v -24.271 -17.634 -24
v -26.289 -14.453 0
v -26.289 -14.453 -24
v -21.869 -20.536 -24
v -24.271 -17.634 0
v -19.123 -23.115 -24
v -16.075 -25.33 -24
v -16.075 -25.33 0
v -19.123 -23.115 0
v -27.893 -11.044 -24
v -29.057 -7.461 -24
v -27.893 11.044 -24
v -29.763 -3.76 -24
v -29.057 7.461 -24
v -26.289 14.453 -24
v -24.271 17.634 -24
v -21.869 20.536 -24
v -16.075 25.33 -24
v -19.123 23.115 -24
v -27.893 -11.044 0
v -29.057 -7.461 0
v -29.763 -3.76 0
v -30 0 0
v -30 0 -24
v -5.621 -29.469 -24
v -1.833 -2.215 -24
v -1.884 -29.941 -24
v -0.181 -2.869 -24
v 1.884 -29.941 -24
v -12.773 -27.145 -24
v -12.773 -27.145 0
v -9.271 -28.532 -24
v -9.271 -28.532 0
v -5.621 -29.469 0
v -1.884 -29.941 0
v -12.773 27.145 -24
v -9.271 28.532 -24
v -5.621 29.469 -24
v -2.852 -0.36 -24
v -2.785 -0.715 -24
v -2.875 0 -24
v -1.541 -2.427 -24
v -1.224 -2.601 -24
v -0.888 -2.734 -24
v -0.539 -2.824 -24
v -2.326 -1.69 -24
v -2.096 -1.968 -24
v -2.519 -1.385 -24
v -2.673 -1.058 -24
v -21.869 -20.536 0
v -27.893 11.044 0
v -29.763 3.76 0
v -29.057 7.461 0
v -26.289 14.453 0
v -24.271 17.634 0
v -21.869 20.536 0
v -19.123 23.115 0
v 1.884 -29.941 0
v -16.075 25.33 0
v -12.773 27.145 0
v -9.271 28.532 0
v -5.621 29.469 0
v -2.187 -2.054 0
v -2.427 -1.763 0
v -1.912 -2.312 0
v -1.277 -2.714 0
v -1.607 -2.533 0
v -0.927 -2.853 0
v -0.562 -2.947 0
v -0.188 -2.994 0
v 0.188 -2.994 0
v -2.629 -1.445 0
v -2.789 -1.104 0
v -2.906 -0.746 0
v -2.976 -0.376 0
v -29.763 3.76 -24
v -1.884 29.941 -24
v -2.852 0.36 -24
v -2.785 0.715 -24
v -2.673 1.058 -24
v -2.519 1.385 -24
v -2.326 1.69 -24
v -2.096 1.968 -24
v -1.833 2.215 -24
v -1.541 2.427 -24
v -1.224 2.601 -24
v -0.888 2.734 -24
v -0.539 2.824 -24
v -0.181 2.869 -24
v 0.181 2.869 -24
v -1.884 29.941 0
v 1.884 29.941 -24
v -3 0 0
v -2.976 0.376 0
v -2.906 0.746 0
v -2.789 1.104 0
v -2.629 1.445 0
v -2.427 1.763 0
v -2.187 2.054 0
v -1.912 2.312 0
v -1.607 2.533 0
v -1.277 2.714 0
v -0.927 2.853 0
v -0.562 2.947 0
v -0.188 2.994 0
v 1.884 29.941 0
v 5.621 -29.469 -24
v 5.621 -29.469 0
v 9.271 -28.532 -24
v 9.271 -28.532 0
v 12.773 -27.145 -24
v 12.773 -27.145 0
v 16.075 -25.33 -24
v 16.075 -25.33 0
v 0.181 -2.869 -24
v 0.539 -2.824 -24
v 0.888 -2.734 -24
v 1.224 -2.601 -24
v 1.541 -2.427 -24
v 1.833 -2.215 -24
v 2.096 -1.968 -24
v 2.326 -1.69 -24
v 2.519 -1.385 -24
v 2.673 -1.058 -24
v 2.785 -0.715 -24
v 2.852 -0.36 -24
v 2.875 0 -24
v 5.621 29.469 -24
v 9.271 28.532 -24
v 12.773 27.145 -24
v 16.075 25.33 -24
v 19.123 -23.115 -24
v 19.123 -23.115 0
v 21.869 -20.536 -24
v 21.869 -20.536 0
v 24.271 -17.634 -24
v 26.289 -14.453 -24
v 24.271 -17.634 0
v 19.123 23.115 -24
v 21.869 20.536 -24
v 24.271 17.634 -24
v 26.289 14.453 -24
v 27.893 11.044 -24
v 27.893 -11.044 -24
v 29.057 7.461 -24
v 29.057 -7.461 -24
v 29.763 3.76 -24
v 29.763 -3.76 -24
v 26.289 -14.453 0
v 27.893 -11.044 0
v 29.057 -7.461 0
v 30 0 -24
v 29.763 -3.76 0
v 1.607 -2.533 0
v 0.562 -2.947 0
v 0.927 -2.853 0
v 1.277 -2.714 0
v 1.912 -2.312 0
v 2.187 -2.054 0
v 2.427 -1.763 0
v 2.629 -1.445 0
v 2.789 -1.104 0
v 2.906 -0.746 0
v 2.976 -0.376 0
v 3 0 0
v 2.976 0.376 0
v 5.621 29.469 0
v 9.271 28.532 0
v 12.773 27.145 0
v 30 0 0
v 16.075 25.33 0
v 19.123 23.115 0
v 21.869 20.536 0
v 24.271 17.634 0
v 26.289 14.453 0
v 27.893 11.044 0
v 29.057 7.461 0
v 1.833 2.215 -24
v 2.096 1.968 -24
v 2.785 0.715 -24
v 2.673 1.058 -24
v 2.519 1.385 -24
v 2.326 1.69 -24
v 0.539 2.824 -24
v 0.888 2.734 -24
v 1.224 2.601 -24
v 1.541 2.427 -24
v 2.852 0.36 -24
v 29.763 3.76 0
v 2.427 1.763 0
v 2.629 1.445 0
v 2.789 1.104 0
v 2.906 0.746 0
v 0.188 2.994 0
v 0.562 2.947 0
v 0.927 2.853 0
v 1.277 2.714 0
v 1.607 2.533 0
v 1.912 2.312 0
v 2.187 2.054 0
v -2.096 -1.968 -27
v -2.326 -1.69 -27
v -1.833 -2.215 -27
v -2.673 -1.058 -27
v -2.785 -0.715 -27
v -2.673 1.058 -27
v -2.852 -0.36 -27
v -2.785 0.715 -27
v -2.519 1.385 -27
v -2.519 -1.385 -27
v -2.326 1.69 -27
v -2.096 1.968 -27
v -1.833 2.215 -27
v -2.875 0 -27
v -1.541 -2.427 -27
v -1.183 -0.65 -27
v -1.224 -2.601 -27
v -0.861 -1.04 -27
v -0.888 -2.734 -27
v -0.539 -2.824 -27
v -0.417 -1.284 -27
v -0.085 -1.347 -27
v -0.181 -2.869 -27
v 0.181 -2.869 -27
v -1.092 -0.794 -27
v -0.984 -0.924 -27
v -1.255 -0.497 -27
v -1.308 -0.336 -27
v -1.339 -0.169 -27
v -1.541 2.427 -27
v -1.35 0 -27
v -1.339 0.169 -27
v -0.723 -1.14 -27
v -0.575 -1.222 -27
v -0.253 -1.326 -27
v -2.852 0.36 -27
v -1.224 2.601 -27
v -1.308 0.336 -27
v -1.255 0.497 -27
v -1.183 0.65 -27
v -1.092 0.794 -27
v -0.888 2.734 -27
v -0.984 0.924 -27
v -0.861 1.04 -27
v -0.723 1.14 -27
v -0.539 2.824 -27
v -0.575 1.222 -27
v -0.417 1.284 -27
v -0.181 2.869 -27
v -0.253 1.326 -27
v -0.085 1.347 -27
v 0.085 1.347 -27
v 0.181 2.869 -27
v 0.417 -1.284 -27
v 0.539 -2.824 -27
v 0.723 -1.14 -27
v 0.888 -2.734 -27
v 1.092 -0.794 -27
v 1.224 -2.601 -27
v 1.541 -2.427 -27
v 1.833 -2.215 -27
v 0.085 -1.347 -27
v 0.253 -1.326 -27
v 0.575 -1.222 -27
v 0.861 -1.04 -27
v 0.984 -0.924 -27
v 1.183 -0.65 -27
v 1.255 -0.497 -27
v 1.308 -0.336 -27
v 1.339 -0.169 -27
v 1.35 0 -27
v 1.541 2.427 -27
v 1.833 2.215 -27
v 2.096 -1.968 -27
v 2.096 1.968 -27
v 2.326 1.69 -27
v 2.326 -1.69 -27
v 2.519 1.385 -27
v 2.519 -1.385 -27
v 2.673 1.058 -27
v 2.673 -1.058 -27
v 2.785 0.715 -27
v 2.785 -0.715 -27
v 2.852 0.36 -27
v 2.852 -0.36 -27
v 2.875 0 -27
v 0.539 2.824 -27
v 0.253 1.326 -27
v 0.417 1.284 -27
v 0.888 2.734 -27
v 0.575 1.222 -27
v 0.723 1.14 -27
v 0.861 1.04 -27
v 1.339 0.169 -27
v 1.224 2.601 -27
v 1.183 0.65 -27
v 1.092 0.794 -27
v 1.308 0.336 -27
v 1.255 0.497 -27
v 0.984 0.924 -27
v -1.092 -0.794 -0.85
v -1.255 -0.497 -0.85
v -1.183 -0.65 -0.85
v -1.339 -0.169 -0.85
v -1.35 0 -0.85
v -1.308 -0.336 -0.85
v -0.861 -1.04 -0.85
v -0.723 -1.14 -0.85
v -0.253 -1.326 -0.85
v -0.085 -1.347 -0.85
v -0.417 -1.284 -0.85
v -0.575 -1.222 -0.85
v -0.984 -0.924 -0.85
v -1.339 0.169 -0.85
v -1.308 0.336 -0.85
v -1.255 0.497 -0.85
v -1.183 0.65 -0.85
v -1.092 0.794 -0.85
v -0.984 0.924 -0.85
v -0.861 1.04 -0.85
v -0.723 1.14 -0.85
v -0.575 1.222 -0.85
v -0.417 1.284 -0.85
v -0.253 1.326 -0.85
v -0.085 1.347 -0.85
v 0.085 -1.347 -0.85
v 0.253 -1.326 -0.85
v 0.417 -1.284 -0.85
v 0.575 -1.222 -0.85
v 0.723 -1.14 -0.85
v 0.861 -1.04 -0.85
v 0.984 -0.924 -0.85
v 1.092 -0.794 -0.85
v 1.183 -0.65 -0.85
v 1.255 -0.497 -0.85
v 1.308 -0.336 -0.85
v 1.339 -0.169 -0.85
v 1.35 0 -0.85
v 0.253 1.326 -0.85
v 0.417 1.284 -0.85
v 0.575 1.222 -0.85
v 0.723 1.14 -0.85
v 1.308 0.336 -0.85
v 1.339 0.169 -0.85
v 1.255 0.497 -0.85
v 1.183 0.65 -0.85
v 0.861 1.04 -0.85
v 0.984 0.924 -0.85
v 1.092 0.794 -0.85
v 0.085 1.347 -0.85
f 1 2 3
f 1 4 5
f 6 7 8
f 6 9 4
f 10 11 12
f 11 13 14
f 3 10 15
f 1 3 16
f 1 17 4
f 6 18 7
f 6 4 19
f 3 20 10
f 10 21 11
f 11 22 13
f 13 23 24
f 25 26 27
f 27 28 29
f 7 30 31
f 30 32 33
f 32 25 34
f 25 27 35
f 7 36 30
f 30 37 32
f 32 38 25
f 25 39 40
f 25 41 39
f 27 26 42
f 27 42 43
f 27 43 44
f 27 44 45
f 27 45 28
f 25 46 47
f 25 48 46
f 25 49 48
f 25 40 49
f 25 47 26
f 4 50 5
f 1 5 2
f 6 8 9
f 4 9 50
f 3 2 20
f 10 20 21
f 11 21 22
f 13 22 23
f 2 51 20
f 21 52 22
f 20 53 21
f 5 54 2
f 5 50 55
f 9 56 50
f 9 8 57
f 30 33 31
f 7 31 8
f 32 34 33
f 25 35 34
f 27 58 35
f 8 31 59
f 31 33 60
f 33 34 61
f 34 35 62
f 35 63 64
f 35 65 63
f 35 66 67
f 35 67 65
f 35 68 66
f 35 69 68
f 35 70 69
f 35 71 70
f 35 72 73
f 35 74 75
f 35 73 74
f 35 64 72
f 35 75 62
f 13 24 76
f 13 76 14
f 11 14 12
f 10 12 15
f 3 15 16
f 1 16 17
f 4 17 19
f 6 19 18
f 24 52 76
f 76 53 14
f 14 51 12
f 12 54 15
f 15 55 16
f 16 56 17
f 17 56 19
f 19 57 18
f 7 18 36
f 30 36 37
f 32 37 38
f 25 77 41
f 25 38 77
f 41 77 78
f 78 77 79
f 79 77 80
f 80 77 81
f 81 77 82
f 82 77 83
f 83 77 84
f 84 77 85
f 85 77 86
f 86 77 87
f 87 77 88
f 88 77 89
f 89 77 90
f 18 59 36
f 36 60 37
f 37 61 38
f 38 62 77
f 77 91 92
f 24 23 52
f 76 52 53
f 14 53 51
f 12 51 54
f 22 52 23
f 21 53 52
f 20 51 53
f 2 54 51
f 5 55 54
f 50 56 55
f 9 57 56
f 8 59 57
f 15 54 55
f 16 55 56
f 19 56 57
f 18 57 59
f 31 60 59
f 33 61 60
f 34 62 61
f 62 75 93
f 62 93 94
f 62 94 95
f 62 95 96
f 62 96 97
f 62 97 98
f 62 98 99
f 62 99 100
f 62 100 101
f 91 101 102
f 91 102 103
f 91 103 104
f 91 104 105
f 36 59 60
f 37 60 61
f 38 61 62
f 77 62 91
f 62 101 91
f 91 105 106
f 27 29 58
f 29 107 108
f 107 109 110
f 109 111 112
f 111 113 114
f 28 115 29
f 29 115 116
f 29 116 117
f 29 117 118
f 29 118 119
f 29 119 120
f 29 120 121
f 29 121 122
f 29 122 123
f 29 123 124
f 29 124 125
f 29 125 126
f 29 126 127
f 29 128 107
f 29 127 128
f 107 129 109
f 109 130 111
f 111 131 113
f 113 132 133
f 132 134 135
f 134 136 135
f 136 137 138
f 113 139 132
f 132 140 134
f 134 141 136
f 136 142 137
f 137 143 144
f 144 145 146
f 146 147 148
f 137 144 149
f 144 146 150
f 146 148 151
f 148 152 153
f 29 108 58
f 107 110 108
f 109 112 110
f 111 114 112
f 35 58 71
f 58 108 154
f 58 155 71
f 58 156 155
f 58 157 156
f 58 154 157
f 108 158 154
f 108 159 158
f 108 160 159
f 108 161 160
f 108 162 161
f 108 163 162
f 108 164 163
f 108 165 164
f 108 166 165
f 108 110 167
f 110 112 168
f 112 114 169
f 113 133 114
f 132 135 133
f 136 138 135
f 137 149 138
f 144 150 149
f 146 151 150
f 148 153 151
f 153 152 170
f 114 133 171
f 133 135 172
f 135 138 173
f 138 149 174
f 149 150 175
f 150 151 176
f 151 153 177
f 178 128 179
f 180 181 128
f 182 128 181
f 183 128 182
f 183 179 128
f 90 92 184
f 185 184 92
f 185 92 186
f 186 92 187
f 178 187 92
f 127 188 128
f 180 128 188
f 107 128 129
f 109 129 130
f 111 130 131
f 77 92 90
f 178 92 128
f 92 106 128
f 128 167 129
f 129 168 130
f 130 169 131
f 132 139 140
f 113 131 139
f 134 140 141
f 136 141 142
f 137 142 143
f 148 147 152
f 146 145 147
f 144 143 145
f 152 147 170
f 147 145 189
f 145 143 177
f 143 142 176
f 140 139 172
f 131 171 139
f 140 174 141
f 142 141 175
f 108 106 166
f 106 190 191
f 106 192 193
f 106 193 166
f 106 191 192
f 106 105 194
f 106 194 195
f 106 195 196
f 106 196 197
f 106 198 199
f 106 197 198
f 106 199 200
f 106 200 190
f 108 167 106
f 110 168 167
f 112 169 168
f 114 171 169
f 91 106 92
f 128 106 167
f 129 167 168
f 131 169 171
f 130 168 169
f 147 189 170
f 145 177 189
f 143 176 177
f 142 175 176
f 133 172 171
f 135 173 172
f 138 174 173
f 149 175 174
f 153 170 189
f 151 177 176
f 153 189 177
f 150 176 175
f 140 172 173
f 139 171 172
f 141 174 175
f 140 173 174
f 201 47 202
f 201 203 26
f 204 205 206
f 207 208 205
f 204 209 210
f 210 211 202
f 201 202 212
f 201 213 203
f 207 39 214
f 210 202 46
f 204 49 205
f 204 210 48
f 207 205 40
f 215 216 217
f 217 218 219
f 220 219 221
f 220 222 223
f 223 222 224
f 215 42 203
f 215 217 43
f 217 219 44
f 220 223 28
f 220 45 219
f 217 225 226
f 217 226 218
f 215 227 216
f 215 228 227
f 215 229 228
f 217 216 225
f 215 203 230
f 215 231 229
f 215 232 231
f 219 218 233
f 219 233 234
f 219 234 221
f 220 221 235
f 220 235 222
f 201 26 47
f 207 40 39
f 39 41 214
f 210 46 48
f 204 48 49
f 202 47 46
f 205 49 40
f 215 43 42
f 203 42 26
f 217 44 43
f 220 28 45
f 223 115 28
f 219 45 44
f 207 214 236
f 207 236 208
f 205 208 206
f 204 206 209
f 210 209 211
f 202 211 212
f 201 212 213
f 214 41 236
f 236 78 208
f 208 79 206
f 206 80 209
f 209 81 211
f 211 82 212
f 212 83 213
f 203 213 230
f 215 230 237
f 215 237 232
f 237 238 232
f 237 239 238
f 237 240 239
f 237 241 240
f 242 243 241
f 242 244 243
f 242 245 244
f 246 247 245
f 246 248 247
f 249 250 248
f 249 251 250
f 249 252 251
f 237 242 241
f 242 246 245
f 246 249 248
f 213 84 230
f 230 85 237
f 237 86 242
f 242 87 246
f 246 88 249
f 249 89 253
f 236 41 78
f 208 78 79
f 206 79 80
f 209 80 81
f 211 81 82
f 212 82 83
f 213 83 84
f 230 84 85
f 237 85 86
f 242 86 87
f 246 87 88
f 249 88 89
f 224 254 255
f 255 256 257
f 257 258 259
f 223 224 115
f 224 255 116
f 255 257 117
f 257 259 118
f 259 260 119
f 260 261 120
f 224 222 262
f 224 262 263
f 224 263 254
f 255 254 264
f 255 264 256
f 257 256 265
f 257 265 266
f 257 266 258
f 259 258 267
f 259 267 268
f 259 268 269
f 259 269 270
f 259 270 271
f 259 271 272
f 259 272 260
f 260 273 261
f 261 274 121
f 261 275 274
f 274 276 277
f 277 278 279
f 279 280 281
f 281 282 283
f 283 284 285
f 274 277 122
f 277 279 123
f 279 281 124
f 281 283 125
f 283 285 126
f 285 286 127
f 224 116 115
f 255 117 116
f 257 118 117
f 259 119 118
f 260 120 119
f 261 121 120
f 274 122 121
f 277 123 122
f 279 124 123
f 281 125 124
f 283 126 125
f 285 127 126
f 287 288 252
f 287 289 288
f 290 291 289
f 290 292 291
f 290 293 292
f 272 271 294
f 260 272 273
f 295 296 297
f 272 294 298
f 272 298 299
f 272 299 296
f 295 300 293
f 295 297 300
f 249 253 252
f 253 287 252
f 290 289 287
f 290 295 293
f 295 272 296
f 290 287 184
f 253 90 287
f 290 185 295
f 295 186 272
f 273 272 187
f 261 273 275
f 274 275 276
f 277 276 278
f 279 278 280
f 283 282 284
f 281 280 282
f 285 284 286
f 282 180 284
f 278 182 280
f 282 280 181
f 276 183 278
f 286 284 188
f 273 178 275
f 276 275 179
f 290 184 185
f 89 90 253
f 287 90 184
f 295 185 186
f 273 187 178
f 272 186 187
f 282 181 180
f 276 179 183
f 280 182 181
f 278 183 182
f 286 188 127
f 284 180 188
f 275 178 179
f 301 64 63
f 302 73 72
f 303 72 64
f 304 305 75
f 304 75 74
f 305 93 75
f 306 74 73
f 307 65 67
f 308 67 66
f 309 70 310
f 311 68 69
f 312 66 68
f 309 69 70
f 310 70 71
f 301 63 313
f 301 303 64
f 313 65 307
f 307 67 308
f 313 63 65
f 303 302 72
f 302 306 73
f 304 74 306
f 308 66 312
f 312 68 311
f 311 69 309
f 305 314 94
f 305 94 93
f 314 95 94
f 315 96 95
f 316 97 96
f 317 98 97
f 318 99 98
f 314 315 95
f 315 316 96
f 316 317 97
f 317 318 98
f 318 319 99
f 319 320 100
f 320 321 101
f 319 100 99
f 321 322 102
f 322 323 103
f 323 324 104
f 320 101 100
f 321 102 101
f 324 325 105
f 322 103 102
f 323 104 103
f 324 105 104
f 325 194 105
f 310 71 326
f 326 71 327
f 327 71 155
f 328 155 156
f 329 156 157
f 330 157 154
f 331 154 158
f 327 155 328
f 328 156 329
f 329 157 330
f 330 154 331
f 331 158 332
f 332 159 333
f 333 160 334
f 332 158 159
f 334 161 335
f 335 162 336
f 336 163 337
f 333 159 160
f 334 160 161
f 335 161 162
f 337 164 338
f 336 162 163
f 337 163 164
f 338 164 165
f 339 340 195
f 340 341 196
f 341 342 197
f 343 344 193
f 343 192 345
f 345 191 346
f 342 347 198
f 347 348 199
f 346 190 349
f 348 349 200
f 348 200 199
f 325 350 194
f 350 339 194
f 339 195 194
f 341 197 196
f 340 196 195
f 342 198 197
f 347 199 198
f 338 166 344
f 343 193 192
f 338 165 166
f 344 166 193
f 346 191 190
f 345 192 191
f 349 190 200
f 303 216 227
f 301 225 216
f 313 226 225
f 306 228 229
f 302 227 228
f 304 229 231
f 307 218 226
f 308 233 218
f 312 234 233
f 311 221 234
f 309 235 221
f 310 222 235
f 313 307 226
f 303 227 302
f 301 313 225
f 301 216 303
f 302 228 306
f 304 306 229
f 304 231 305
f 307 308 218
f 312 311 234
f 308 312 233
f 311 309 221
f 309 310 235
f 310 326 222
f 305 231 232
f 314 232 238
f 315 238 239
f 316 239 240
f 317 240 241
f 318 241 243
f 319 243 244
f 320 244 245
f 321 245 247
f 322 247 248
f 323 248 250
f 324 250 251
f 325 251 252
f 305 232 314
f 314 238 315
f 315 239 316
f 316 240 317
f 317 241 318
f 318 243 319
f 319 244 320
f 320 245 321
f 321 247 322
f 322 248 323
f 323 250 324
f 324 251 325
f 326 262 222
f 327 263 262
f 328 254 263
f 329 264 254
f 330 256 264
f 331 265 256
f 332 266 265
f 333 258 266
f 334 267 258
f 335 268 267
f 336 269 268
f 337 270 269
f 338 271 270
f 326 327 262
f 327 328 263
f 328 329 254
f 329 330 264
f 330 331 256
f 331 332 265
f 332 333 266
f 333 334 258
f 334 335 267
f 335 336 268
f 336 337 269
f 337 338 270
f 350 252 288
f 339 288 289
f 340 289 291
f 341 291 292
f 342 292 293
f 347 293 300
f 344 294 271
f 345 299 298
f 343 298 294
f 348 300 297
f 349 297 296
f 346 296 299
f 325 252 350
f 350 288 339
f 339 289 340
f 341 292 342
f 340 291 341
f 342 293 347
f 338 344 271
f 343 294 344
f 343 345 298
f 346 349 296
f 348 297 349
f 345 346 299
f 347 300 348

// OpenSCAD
$fn = 50;


difference() {
	union() {
		translate(v = [0, 0, -24.0000000000]) {
			cylinder(h = 24, r = 30.0000000000);
		}
		#translate(v = [0, 0, -27.0000000000]) {
			cylinder(h = 27, r = 2.8750000000);
		}
	}
	union() {
		translate(v = [0, 0, 0]) {
			rotate(a = [0, 0, 0]) {
				difference() {
					union() {
						translate(v = [0, 0, -27.0000000000]) {
							cylinder(h = 27, r = 1.0000000000);
						}
						translate(v = [0, 0, -0.8500000000]) {
							cylinder(h = 0.8500000000, r1 = 1.3500000000, r2 = 3.0000000000);
						}
						translate(v = [0, 0, -27.0000000000]) {
							cylinder(h = 27, r = 1.3500000000);
						}
						translate(v = [0, 0, -27.0000000000]) {
							cylinder(h = 27, r = 1.0000000000);
						}
					}
					union();
				}
			}
		}
	}
}
